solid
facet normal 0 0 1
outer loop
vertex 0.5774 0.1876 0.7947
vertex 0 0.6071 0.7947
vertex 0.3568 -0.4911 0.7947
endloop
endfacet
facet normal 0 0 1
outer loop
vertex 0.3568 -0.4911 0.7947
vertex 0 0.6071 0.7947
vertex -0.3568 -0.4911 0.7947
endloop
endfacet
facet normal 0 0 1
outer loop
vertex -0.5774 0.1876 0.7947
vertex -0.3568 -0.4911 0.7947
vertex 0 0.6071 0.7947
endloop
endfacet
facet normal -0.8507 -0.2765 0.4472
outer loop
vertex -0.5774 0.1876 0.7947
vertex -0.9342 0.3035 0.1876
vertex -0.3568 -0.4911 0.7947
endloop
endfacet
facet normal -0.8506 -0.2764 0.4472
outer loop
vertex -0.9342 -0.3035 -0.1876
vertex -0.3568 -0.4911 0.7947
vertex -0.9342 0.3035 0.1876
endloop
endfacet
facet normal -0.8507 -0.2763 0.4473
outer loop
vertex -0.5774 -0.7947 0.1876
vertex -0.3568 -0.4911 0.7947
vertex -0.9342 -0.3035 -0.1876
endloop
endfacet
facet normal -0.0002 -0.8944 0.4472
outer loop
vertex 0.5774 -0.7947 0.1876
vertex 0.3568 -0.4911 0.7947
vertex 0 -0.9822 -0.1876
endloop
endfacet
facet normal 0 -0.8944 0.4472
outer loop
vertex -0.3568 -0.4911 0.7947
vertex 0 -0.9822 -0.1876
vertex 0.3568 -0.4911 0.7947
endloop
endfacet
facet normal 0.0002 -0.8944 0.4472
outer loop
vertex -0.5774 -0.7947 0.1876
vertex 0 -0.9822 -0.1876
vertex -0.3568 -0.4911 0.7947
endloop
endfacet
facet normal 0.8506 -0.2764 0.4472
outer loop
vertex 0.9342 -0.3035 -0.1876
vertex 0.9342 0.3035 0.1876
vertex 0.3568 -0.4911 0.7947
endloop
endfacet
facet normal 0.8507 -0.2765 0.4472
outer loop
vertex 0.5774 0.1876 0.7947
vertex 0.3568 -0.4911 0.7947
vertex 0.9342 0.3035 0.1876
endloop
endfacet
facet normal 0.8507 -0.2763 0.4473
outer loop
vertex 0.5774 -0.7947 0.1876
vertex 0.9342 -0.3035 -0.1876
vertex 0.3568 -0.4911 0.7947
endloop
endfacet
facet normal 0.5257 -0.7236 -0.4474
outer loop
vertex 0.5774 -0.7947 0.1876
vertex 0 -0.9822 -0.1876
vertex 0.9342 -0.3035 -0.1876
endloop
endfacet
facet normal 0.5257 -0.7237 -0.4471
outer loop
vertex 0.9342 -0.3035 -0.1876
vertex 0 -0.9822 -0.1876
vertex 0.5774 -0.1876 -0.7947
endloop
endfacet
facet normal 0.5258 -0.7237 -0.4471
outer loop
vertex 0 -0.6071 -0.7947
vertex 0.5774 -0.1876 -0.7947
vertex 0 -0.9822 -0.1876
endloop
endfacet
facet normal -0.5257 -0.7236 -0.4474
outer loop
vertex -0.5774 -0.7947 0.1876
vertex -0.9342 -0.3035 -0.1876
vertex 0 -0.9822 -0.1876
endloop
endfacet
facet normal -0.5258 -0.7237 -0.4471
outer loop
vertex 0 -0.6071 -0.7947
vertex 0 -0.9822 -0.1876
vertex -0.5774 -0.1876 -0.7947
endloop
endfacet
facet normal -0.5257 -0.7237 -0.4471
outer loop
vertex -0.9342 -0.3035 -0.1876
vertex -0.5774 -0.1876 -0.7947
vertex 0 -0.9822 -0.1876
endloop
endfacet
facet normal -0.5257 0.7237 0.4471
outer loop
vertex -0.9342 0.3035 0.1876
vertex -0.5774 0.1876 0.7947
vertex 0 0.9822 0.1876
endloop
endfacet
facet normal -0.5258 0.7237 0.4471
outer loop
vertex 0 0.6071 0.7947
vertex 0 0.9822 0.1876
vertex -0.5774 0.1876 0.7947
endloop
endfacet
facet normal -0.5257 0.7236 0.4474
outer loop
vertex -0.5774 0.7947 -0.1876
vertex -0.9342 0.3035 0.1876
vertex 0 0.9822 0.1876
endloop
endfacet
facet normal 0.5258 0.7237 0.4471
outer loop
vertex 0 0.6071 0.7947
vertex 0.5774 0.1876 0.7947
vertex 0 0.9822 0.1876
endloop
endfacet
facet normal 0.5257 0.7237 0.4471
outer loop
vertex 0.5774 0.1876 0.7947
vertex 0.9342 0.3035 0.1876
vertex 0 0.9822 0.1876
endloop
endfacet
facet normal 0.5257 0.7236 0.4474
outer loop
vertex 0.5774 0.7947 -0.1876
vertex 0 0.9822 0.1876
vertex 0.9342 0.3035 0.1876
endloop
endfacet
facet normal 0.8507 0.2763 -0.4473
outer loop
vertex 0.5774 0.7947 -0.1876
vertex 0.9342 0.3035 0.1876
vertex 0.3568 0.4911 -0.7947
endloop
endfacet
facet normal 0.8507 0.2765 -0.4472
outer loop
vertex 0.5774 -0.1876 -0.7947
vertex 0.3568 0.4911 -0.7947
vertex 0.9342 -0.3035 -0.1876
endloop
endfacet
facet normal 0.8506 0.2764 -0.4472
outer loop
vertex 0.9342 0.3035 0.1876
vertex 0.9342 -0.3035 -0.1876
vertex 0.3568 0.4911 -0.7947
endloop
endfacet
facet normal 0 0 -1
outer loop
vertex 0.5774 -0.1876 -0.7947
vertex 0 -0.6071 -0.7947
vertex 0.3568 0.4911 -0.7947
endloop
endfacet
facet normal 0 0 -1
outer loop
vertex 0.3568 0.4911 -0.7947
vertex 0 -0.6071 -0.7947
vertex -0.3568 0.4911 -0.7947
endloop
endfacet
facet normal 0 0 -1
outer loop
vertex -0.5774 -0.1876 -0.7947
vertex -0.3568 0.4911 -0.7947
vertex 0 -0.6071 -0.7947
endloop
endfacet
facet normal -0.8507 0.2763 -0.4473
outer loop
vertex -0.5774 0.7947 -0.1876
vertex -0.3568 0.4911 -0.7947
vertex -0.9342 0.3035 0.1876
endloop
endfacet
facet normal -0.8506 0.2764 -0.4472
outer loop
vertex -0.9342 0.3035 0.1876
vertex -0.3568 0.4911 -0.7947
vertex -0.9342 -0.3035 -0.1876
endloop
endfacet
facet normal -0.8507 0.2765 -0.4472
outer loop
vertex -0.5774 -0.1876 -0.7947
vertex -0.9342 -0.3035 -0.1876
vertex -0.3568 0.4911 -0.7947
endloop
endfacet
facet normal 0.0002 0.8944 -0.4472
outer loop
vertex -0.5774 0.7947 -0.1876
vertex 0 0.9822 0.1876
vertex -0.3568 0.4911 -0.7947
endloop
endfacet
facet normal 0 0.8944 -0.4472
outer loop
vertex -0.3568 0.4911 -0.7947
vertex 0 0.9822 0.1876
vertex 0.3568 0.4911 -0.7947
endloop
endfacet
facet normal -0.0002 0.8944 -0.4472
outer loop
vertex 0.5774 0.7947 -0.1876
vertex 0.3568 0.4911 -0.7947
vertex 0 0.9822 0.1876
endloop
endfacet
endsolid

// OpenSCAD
polyhedron( points = [[-0.356822089746642, -0.491123473218112, 0.794654472252924], [0.35682208977527, -0.491123473218112, 0.794654472252924], [0.577350269191195, -0.794654472310434, 0.187592474001172], [2.88636419876012e-13, -0.982246946359671, -0.187592474138774], [-0.577350269119112, -0.794654472297898, 0.187592474026243], [-0.577350269146367, 0.187592474128074, 0.794654472252924], [0.577350269208686, 0.18759247402439, 0.794654472252924], [0.934172358901767, -0.303530999094991, -0.187592474168883], [-8.88833393184123e-11, -0.607061998187905, -0.794654472280121], [-0.934172358845457, -0.303530998962947, -0.187592474114496], [-0.934172358828613, 0.303530999197306, 0.187592474084637], [6.88241777476988e-11, 0.607061998173204, 0.794654472252924], [0.934172358868169, 0.303530999066181, 0.187592474006335], [0.577350269053783, -0.187592474042949, -0.794654472356039], [-0.577350269259838, -0.187592474092255, -0.794654472117581], [-0.577350268928385, 0.794654472314415, -0.187592473994475], [2.83314235261535e-10, 0.982246946312568, 0.187592474220791], [0.577350268952031, 0.794654472162308, -0.187592474099945], [0.35682208959094, 0.491123473250688, -0.794654472240428], [-0.356822089930971, 0.491123473156138, -0.794654472093054]], faces = [[0, 1, 6, 11, 5], [0, 5, 10, 9, 4], [0, 4, 3, 2, 1], [1, 2, 7, 12, 6], [2, 3, 8, 13, 7], [3, 4, 9, 14, 8], [5, 11, 16, 15, 10], [6, 12, 17, 16, 11], [7, 13, 18, 17, 12], [8, 14, 19, 18, 13], [9, 10, 15, 19, 14], [15, 16, 17, 18, 19]]);
